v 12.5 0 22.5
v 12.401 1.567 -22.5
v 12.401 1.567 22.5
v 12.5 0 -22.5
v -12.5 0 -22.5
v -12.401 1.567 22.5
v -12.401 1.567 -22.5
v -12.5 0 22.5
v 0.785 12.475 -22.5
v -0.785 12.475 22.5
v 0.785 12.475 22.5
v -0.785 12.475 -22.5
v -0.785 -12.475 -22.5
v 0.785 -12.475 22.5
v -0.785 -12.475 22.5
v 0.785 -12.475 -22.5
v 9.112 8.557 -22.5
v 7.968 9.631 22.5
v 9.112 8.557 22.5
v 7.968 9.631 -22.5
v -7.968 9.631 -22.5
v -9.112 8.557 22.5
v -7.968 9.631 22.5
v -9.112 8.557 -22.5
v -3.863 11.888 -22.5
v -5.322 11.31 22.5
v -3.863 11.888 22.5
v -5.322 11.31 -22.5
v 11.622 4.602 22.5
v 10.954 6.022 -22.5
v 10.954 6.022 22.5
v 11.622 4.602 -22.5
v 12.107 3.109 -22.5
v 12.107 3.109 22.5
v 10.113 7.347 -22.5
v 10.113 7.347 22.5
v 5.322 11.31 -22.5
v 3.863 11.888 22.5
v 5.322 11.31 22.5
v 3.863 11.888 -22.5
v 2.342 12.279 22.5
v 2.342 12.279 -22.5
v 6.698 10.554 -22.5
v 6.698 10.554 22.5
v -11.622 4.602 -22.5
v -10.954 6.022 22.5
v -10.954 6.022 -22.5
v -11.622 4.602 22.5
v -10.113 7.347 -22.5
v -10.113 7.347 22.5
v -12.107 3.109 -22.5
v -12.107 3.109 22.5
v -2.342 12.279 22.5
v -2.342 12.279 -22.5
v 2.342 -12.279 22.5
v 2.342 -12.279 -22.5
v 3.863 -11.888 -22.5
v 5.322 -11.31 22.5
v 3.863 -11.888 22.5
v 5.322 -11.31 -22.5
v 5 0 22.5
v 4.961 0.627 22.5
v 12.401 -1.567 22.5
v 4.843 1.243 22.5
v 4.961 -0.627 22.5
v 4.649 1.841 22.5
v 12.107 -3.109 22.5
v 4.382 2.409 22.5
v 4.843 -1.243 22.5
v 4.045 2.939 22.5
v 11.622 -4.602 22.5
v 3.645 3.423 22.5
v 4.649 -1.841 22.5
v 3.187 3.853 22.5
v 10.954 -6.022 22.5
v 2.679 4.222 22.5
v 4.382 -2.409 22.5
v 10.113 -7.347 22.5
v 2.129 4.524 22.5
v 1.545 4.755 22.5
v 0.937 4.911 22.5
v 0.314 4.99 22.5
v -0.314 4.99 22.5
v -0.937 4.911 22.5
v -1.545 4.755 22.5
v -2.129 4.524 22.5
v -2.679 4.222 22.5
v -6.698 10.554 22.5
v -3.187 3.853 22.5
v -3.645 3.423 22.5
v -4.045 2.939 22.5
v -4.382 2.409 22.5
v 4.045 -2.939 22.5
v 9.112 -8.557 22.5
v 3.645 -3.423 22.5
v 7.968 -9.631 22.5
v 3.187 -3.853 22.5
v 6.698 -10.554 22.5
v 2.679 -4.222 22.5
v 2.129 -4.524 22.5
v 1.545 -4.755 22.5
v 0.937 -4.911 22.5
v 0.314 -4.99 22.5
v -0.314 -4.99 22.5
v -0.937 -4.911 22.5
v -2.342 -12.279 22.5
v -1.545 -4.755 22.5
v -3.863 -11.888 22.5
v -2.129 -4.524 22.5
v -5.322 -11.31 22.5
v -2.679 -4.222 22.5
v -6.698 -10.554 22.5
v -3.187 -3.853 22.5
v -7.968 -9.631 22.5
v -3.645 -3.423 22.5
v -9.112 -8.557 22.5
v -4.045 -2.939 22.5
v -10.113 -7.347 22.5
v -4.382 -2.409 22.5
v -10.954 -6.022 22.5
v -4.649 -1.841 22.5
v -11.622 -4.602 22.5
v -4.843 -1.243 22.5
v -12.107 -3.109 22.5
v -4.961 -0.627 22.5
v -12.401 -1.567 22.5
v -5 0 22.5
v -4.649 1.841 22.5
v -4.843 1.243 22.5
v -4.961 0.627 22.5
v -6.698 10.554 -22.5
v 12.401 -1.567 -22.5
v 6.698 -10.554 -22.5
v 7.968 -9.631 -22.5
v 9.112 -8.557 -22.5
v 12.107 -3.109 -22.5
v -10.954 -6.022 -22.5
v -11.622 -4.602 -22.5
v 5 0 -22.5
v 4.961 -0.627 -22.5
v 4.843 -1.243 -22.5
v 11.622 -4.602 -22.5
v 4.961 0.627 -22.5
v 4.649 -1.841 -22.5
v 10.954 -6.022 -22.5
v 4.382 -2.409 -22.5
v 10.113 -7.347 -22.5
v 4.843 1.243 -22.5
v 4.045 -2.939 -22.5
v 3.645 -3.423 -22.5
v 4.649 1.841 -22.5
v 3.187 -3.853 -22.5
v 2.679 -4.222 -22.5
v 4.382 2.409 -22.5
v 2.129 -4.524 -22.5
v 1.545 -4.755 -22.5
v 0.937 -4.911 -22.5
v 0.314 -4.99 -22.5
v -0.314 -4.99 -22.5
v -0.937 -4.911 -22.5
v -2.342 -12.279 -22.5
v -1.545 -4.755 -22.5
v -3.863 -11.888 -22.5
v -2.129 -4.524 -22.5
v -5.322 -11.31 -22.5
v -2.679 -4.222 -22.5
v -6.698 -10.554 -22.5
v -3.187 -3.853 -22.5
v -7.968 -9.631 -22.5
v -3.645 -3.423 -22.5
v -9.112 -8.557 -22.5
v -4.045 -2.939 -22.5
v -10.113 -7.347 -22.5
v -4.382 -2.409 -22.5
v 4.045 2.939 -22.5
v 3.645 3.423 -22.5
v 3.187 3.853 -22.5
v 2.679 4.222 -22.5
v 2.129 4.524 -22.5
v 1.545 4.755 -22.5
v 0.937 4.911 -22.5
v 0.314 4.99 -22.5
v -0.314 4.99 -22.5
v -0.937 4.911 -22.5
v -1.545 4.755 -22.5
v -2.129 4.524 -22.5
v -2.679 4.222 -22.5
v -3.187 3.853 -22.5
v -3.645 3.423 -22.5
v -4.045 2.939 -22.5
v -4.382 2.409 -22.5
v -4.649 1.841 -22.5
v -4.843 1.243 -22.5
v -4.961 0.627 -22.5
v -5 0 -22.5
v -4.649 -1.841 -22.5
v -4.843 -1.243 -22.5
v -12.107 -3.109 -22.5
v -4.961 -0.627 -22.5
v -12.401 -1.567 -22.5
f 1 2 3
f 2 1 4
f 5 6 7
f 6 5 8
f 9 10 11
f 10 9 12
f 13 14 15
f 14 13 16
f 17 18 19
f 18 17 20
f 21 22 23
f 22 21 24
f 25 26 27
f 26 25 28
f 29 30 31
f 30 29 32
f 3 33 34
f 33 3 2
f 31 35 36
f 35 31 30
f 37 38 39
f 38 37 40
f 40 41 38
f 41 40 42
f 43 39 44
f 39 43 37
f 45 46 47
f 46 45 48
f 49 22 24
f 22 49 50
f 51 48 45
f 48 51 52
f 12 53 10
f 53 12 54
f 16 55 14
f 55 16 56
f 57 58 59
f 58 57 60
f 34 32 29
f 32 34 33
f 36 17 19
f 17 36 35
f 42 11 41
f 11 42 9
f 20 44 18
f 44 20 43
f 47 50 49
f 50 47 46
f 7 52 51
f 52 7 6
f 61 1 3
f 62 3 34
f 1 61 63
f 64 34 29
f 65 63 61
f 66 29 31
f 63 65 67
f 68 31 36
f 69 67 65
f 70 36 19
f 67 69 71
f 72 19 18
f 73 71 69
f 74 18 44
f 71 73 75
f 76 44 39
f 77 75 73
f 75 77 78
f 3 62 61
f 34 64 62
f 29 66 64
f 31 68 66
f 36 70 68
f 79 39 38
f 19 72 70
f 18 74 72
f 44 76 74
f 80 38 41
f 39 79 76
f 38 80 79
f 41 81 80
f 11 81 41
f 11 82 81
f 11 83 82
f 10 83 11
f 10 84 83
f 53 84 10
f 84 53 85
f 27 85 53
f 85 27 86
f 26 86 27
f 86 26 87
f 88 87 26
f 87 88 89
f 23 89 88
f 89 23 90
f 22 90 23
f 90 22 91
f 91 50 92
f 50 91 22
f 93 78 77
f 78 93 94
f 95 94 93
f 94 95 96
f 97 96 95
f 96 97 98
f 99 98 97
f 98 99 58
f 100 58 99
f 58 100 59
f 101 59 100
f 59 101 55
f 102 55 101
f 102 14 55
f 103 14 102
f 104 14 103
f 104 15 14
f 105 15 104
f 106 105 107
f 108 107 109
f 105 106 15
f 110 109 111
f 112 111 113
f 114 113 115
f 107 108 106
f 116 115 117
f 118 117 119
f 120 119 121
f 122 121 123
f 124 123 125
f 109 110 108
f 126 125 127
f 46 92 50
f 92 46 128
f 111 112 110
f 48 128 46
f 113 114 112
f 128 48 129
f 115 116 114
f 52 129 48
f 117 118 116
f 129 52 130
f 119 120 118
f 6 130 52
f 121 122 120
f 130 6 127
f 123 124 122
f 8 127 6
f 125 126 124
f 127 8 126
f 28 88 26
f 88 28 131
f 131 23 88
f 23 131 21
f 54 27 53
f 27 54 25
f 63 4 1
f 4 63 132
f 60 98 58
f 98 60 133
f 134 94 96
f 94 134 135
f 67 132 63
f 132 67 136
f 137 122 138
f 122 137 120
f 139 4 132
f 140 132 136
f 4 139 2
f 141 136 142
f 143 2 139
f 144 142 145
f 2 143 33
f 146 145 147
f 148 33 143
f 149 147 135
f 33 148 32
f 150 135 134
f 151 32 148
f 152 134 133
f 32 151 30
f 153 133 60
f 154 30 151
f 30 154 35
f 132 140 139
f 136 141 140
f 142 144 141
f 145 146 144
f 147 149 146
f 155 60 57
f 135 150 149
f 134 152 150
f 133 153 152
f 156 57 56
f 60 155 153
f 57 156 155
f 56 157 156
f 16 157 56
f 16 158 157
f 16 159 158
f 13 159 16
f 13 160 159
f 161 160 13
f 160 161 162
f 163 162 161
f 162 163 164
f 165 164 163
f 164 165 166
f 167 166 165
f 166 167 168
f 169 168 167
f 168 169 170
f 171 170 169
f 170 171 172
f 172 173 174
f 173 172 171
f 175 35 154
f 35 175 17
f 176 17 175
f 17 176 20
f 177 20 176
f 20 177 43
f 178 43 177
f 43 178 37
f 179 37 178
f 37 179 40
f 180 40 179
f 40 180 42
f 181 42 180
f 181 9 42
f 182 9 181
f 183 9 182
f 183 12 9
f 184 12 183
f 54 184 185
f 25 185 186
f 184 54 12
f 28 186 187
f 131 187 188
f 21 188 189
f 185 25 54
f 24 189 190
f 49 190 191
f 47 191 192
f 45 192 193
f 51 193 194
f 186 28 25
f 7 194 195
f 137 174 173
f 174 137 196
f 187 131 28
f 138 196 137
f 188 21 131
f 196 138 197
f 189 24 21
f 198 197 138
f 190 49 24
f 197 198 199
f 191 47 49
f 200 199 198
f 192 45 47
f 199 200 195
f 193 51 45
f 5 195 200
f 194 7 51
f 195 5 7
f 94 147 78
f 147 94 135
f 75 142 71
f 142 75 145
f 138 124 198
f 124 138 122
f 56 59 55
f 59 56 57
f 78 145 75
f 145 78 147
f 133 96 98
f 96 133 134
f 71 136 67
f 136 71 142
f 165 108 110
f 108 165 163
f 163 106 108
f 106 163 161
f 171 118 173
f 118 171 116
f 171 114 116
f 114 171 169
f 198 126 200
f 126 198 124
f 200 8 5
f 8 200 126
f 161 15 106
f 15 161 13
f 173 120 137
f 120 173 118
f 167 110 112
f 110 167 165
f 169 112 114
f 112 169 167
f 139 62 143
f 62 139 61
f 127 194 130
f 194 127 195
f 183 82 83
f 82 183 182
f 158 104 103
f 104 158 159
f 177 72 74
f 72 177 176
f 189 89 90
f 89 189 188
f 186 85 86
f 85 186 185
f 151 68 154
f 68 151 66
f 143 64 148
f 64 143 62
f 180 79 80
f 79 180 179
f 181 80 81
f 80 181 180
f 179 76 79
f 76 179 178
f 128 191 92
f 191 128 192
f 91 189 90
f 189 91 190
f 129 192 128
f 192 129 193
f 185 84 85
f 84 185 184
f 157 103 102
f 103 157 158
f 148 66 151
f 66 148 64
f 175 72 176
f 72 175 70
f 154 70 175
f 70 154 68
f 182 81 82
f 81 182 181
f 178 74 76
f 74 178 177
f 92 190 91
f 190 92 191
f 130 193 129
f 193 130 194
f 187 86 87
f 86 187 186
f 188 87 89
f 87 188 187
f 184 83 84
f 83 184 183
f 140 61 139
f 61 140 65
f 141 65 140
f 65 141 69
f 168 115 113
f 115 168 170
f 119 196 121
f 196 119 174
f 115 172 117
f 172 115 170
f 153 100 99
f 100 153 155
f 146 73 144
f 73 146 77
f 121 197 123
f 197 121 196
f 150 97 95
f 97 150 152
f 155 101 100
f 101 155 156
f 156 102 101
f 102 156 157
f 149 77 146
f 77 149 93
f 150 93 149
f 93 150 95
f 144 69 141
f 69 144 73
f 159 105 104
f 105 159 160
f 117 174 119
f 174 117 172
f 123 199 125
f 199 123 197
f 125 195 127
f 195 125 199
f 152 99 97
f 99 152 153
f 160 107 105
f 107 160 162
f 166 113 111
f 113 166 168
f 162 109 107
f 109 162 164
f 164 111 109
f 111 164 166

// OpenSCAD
$fn = 50;


difference() {
	union() {
		translate(v = [0, 0, -22.5000000000]) {
			cylinder(h = 45, r = 12.5000000000);
		}
	}
	union() {
		translate(v = [0, 0, -100.0000000000]) {
			cylinder(h = 200, r = 5);
		}
	}
}
